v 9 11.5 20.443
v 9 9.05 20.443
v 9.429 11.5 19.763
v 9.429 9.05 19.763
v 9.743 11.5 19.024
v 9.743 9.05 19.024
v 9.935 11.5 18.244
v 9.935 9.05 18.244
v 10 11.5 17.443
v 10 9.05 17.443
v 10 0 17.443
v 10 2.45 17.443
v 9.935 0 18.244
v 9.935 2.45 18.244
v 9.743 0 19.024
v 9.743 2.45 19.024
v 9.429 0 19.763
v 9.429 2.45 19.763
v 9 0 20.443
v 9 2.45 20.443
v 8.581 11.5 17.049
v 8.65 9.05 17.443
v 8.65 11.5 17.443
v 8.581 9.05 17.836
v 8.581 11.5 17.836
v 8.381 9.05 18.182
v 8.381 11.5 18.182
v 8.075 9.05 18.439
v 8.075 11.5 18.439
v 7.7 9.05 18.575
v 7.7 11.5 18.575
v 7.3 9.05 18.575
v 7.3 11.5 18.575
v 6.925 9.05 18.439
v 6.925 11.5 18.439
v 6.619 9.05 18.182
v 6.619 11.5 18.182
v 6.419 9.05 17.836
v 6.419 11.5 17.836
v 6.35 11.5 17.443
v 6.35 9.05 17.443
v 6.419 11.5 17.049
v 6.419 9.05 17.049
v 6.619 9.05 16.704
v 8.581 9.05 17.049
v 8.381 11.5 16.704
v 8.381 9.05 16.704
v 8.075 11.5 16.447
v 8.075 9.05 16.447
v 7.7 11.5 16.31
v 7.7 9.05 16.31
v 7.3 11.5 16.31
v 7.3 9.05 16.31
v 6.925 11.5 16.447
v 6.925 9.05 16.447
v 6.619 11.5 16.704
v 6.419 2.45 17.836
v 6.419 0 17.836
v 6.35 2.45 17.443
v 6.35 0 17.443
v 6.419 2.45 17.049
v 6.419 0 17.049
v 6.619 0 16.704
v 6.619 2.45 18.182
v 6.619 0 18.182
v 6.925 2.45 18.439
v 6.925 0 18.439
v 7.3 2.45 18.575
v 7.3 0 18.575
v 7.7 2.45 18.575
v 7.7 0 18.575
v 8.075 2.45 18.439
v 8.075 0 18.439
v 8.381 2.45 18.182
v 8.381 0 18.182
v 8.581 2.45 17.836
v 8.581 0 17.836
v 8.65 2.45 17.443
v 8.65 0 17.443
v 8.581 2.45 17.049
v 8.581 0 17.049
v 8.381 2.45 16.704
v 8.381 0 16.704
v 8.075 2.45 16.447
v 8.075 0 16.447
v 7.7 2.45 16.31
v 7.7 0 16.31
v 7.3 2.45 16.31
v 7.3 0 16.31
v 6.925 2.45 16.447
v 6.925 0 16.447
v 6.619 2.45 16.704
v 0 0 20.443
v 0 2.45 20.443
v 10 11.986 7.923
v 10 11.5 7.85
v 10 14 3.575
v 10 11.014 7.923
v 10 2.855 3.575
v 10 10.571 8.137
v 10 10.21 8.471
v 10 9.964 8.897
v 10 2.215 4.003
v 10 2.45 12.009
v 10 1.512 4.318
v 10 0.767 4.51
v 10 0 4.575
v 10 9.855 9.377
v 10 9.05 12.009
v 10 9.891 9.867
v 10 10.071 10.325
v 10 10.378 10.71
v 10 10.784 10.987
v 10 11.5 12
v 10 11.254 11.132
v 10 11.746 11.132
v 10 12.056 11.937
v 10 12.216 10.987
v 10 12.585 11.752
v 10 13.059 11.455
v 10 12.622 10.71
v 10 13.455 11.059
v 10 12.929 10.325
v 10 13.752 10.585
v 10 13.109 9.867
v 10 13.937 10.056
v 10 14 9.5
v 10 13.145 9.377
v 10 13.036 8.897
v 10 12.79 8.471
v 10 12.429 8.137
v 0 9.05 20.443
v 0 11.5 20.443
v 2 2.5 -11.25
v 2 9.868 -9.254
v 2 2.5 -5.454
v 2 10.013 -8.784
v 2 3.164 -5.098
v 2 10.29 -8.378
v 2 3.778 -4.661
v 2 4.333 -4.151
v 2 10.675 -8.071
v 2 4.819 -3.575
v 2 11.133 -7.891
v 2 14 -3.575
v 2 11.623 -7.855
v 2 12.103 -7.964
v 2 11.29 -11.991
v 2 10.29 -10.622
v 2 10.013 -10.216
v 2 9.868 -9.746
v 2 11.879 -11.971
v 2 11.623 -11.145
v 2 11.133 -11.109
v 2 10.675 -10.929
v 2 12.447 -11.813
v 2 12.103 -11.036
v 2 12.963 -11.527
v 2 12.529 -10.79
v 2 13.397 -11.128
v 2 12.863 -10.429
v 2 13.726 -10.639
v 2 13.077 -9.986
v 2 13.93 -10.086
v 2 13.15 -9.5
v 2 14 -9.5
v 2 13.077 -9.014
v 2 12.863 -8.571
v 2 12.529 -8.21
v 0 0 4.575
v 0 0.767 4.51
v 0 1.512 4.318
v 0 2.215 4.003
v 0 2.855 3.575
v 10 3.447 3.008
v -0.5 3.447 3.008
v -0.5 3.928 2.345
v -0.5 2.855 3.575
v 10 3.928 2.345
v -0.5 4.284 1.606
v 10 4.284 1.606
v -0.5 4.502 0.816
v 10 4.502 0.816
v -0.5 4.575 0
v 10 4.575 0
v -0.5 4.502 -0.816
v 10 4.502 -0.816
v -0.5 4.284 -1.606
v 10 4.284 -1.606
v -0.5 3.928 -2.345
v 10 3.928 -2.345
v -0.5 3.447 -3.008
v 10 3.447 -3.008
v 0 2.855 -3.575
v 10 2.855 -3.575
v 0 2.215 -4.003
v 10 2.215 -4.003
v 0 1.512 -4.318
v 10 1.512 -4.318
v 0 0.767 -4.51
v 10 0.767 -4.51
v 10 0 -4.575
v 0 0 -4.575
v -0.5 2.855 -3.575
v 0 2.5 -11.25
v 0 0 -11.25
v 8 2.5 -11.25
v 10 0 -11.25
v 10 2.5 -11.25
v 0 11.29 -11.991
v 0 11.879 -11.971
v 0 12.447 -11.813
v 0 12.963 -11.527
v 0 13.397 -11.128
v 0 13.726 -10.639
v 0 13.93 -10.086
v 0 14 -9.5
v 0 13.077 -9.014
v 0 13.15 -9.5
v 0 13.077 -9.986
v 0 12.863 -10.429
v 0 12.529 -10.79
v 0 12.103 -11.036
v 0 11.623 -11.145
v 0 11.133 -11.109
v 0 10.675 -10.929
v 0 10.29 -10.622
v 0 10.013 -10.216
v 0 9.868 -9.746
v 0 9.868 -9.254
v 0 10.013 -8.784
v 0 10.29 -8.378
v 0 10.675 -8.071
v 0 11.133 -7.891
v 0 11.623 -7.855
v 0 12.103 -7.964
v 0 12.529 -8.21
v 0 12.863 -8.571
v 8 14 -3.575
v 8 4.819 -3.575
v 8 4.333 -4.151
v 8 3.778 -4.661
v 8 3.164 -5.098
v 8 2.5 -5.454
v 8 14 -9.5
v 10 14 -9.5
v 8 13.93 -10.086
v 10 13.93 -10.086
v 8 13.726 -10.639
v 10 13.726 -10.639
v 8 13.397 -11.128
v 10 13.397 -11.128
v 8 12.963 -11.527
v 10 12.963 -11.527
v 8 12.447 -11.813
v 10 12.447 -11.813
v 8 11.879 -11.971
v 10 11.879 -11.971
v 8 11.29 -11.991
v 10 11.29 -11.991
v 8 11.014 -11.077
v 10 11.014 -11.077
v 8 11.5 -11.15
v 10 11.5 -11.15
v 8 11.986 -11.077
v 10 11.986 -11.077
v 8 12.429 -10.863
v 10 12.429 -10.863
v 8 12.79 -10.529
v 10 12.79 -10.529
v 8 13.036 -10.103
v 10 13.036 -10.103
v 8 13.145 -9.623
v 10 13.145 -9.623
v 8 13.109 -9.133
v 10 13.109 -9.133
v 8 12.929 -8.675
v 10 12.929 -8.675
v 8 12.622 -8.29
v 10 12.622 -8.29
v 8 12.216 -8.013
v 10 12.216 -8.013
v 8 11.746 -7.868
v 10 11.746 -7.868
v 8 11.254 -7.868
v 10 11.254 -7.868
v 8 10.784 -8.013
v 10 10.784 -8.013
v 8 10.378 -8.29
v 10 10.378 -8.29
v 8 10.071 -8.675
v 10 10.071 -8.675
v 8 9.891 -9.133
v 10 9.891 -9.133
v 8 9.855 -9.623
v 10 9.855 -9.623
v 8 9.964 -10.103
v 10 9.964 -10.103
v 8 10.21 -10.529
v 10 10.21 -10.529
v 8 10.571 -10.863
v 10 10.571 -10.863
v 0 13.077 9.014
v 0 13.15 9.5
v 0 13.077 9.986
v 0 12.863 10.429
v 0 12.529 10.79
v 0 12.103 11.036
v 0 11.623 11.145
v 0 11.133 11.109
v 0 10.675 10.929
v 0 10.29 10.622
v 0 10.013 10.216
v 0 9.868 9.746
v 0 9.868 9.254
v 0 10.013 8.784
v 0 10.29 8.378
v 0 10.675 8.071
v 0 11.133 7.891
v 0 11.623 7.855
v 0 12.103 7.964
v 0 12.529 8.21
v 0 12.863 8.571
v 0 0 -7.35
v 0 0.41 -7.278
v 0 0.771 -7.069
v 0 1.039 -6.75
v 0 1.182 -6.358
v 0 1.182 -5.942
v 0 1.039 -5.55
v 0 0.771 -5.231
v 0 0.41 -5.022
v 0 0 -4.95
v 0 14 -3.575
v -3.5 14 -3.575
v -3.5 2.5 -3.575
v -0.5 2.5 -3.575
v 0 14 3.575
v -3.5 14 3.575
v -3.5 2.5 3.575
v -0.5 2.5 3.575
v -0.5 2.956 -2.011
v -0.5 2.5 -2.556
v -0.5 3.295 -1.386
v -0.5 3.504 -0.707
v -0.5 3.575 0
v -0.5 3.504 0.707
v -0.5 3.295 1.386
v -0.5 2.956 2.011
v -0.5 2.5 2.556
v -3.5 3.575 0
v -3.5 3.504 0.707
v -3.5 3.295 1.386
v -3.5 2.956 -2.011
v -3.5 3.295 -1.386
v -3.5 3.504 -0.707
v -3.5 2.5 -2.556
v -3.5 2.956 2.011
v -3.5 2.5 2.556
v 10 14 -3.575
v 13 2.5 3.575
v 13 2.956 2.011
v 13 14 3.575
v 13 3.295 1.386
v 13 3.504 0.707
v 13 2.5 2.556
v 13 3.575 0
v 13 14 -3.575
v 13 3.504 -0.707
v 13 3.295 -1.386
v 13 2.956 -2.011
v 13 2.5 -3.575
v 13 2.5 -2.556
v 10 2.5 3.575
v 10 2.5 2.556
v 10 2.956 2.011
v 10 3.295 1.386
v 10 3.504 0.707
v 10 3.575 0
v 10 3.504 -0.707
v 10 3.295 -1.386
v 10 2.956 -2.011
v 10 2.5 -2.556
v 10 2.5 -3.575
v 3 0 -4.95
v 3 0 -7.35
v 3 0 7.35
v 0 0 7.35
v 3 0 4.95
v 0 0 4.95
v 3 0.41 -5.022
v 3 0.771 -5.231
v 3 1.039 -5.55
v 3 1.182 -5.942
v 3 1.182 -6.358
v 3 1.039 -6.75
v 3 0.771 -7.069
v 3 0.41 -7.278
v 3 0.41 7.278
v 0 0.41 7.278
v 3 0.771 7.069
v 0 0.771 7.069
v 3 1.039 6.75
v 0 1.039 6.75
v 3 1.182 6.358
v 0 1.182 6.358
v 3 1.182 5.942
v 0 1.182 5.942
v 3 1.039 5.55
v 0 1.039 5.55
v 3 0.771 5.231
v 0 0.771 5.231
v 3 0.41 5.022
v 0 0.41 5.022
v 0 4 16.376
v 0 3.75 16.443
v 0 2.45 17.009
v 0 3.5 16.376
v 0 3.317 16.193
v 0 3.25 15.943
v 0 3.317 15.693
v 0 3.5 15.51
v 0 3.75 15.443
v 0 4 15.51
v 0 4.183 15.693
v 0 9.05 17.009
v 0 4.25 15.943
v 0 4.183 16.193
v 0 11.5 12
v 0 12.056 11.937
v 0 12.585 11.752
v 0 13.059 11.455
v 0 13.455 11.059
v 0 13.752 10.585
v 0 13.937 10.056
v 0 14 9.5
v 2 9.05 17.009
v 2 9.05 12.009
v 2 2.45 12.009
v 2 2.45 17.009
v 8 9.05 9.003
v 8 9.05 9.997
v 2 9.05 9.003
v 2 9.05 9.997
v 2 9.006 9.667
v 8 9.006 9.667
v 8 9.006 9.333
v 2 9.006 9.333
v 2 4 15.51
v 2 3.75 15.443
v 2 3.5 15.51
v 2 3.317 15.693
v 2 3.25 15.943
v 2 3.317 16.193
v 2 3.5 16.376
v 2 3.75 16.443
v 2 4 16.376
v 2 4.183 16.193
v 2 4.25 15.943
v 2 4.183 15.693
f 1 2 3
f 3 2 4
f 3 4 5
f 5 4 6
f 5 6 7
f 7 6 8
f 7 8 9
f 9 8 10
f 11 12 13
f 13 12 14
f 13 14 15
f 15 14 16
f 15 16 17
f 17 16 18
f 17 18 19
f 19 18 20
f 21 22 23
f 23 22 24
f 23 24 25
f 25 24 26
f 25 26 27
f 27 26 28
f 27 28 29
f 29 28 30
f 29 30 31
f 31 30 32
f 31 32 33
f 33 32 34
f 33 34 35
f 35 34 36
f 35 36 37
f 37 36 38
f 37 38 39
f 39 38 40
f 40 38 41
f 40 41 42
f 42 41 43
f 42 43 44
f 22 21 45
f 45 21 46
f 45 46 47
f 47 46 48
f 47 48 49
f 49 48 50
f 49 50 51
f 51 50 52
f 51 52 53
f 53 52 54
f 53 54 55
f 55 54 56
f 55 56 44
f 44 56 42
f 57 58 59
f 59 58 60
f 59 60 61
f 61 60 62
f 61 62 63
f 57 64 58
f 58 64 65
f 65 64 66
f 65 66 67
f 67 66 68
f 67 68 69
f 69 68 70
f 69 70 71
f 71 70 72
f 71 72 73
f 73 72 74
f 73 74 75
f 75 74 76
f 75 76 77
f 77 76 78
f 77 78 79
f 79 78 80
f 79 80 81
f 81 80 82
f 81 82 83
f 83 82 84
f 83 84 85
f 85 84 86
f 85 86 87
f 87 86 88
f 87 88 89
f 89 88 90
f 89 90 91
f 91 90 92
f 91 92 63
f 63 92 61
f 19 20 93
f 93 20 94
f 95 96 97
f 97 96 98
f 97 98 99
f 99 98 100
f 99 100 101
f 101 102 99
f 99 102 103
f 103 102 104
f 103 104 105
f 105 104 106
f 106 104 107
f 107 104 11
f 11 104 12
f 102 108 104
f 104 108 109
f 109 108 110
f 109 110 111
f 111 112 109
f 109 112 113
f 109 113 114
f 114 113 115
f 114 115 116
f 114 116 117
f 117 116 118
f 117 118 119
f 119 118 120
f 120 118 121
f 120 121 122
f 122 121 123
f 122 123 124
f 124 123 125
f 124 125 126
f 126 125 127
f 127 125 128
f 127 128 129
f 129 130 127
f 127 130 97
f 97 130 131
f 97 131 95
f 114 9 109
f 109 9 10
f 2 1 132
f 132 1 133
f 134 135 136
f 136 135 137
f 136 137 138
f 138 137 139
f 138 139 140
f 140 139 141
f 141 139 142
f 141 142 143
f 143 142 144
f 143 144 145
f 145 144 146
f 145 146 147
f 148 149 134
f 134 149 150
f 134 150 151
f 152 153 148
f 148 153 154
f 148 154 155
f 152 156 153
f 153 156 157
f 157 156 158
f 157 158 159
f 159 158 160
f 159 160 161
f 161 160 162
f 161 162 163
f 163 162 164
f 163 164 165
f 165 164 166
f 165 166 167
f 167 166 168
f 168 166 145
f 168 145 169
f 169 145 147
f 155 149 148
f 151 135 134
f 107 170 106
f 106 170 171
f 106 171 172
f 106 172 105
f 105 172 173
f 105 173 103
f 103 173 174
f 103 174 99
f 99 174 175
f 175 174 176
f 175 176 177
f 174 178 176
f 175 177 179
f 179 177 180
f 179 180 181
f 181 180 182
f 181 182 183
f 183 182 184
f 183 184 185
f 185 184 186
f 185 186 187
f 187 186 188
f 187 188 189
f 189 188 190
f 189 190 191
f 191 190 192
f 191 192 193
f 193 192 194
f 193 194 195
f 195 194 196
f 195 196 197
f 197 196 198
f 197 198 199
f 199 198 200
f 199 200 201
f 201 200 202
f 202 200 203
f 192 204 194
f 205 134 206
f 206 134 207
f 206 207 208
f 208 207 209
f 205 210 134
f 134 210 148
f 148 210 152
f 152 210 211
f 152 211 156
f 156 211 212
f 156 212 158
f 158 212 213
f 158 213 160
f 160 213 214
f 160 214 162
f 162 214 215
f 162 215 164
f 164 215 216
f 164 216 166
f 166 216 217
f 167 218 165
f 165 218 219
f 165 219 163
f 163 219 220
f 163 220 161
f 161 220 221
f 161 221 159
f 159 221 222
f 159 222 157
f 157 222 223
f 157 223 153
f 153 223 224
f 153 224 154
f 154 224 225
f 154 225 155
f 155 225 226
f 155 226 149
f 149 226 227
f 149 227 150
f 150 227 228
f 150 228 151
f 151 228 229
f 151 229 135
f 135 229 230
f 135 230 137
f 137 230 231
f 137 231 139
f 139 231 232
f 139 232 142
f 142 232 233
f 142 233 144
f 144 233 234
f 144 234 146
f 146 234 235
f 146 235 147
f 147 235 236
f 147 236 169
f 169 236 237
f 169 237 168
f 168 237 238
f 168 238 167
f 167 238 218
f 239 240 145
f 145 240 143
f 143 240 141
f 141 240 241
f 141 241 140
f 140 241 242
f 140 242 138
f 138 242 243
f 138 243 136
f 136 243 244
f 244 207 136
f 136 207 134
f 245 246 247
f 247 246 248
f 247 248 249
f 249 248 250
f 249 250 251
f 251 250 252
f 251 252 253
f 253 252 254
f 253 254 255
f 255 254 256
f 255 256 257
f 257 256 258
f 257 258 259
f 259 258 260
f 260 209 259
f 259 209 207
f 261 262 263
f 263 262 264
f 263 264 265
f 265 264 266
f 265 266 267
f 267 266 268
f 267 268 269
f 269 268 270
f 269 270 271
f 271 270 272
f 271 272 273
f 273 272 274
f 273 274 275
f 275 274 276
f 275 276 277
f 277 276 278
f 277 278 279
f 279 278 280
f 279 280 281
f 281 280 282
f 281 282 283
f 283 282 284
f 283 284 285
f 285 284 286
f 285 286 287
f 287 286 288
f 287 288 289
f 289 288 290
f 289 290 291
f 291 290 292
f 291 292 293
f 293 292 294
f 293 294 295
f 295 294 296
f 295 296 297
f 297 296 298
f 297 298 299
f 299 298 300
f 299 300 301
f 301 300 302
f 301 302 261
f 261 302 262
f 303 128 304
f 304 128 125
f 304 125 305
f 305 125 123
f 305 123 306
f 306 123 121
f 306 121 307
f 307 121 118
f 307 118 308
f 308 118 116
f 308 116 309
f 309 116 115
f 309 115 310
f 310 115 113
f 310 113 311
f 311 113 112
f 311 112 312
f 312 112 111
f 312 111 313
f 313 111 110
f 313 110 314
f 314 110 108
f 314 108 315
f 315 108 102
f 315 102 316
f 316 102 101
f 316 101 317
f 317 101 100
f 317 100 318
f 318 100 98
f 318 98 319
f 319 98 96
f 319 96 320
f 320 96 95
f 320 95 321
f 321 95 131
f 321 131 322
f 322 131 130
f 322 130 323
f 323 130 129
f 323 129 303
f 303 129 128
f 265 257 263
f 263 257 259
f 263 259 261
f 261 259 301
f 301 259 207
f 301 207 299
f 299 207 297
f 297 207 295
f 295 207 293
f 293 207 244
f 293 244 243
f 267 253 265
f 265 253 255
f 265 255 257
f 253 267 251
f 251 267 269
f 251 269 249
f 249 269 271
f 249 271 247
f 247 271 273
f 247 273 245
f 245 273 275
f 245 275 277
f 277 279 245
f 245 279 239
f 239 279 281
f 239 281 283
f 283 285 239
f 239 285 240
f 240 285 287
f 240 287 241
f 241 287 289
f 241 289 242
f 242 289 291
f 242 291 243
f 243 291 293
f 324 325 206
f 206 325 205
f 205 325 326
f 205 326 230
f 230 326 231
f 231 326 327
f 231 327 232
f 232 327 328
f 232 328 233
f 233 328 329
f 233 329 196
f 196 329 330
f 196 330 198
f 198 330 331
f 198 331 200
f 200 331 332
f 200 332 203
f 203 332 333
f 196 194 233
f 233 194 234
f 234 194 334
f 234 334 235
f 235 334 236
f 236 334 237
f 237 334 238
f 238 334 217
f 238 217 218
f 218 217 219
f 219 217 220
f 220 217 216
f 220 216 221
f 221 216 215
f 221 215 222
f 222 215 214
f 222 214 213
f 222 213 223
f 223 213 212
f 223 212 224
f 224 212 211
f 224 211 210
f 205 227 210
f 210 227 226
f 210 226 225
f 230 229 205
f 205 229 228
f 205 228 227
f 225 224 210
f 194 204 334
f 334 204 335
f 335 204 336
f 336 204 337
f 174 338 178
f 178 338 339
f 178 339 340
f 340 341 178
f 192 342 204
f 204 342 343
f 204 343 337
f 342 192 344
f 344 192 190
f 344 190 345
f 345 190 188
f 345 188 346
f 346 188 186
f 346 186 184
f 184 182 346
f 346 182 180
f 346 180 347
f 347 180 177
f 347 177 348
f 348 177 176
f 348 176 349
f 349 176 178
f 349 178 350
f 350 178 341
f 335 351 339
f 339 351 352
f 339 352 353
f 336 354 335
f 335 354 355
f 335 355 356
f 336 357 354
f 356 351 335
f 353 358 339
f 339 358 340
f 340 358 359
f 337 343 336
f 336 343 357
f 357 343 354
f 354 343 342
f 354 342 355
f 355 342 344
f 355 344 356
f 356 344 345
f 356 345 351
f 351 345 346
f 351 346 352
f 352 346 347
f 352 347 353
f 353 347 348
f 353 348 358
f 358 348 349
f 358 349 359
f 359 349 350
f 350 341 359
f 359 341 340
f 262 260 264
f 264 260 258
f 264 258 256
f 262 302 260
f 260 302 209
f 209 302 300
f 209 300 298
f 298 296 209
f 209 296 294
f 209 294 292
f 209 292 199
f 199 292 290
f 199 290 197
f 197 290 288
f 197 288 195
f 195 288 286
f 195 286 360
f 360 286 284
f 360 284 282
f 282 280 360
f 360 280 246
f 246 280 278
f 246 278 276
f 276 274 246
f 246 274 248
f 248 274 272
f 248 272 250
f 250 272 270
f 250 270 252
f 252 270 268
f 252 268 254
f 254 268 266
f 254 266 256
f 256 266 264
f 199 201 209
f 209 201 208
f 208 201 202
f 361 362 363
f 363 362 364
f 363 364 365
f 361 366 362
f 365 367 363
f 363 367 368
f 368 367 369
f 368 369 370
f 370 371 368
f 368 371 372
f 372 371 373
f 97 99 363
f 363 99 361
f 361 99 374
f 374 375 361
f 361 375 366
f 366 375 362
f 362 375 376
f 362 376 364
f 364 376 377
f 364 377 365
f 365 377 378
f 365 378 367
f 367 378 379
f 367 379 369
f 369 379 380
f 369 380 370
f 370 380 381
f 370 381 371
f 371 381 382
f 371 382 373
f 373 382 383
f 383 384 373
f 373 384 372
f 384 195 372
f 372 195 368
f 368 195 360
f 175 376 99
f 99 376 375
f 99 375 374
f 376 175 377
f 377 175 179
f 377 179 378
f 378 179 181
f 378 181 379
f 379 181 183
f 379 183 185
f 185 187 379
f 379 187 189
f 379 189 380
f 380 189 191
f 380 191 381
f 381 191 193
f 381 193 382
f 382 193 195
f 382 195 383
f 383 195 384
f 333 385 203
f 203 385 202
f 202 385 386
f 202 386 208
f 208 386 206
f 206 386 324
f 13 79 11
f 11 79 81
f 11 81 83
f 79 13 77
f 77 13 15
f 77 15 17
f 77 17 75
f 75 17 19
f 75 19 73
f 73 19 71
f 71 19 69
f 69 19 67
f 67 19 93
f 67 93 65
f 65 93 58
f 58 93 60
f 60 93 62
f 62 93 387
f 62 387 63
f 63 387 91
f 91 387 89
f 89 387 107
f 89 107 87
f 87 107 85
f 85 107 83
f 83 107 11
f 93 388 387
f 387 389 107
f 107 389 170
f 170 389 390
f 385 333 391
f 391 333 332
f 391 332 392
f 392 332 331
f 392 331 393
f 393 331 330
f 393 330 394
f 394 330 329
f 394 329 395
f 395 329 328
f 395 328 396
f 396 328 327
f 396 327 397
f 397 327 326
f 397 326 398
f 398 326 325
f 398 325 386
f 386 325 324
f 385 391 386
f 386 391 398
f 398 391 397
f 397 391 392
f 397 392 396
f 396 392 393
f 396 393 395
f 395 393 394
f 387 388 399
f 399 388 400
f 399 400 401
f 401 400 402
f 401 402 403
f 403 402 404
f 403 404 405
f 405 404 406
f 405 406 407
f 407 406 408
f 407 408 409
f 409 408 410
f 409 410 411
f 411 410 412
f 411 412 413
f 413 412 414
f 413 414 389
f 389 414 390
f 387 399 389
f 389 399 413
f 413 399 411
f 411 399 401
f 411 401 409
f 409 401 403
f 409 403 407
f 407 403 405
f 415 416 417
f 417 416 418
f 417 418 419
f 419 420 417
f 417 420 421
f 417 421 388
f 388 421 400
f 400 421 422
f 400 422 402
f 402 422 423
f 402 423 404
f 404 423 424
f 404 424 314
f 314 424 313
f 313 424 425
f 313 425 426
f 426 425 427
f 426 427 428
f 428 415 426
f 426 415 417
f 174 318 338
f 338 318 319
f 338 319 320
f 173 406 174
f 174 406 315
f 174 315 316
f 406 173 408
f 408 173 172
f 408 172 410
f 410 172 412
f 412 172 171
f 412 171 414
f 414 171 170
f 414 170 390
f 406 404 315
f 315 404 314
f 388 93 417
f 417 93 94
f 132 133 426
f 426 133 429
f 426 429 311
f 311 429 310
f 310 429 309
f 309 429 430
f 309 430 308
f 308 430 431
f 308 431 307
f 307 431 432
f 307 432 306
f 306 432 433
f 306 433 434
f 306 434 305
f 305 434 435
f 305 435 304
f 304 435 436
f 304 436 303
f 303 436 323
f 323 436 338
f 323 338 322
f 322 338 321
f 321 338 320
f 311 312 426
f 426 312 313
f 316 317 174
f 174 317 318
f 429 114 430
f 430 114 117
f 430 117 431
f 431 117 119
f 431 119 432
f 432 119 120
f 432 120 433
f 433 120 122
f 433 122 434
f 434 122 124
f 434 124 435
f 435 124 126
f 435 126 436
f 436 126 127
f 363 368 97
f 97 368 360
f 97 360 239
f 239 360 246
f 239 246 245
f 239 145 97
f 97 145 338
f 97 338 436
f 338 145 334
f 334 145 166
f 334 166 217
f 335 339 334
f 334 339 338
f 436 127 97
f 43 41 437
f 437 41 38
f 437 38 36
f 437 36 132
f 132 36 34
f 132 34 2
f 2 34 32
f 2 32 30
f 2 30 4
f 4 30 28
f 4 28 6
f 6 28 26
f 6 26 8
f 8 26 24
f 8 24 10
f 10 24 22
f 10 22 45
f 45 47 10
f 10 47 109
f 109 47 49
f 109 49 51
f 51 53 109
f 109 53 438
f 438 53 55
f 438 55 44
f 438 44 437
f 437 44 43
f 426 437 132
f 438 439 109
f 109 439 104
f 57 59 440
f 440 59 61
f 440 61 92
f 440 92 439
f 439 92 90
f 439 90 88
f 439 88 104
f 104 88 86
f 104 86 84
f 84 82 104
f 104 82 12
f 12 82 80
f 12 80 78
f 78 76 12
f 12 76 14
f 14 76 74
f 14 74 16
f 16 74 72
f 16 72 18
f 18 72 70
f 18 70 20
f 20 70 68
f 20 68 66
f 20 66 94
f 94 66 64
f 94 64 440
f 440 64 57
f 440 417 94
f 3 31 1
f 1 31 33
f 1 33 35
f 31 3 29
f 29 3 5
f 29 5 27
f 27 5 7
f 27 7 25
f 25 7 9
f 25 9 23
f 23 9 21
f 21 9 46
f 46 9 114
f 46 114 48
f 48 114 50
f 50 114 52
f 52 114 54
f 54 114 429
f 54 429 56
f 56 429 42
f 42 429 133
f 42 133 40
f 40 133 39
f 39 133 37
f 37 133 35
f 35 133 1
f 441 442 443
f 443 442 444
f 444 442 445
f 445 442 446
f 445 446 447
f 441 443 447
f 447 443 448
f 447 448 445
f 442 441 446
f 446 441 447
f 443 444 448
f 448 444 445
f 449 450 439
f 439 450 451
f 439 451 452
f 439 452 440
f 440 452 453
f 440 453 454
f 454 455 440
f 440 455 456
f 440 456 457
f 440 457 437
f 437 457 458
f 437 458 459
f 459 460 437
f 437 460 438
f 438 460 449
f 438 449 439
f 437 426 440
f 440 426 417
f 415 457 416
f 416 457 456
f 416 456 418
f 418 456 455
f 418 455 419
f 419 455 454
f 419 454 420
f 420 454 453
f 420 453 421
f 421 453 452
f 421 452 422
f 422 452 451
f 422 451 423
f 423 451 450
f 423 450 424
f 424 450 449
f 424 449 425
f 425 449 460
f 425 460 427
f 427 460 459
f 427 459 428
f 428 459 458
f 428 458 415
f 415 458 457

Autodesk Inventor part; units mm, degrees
ref_plane "YZ Plane" through (0, 0, 0) normal (1, 0, 0) x (0, 1, 0)
ref_plane "XZ Plane" through (0, 0, 0) normal (0, 1, 0) x (-1, 0, 0)
ref_plane "XY Plane" through (0, 0, 0) normal (0, 0, 1) x (1, 0, 0)
sketch "スケッチ1" plane through (0, 0, 0) normal (1, 0, 0) x (0, 1, 0)
  circle A0 centre (0, 0) radius 4.575
  circle A1 centre (0, 0) radius 3.575
  line L0 (0, 0) -> (0, 6)
  line L1 (0, 6) -> (0, -6)
  line L2 (0, 0) -> (11.5, 0)
  line L3 (11.5, 0) -> (11.5, 9.5)
  line L4 (11.5, 9.5) -> (11.5, -9.5)
  circle A2 centre (11.5, 9.5) radius 1.65
  circle A3 centre (11.5, -9.5) radius 1.65
  line L5 (0, 0) -> (0, 11.25)
  line L6 (0, 11.25) -> (0, -11.25)
  line L7 (-2.5, -11.25) -> (2.5, -11.25)
  line L8 (2.5, -11.25) -> (2.5, 11.25)
  line L9 (2.5, 11.25) -> (-2.5, 11.25)
  line L10 (-2.5, 11.25) -> (-2.5, -11.25)
  line L11 (-2.5, -11.25) -> (2.5, 11.25) construction
  line L12 (2.5, -11.25) -> (-2.5, 11.25) construction
  circle A4 centre (11.5, 9.5) radius 2.5
  circle A5 centre (11.5, -9.5) radius 2.5
  line L13 (2.5, 11.25) -> (11.2899, 11.9912)
  line L14 (2.5, -11.25) -> (11.2899, -11.9912)
  line L15 (14, 9.5) -> (14, -9.5)
  line L16 (0, -3.575) -> (14, -3.575)
  line L17 (0, 3.575) -> (14, 3.575)
  circle A6 centre (0, 0) radius 6
  line L18 (0, 0) -> (0, 6.15)
  line L19 (0, 6.15) -> (0, -6.15)
  circle A7 centre (0, 6.15) radius 1.25
  circle A8 centre (0, -6.15) radius 1.25
  line L20 (0, 11.25) -> (11.5, 11.25)
  line L21 (11.5, 11.25) -> (11.5, 12)
  line L22 (11.5, 12) -> (0, 12)
  line L23 (0, 12) -> (0, 11.25)
  point P0 (0, 4.575)
  point P1 (0, -4.575)
  point P2 (2.5, 3.575)
  point P3 (2.5, 2.5555)
  point P4 (2.5, -2.5555)
  point P5 (2.5, -3.575)
  point P6 (0, 7.4)
  point P7 (0, 4.9)
  point P8 (0, -4.9)
  point P9 (0, -7.4)
  point P10 (2.5, 5.4544)
  point P11 (2.5, -5.4544)
  point P12 (4.8186, 3.575)
  point P13 (4.8186, -3.575)
  point P14 (2.8548, 3.575)
  point P15 (2.8548, -3.575)
  dimension "d0" = 9.15
  dimension "d1" = 7.15
  dimension "d2" = 6
  dimension "d3" = 12
  dimension "d6" = 11.5
  dimension "d7" = 9.5
  dimension "d8" = 19
  dimension "d9" = 3.3
  dimension "d10" = 3.3
  dimension "d11" = 11.25
  dimension "d12" = 22.5
  dimension "d13" = 5
  dimension "d14" = 5
  dimension "d15" = 5
  dimension "d28" = 12
  dimension "d29" = 6.15
  dimension "d30" = 12.3
  dimension "d31" = 2.5
  dimension "d32" = 2.5
  dimension "d89" = 11.5
extrude "押し出し7" add sketch "スケッチ1" along normal blind 2 contours L2 A6 L16 A0 | A0 L17 A6 L2 | A0 L8 A6 L17 | L16 A6 L8 A0 | A6 L17 L3 L2 | L2 L4 L16 A6 | A0 L0 A7 A6 L8 | A6 L8 L20 A4 L3 L17 | L8 A6 A8 L1 A0 | L16 L4 A5 L14 L8 A6 | L3 L17 L15 L16 L4 | A6 A7 L5 L9 L8 | L3 A4 L15 L17 | L8 L7 L6 A8 A6 | L16 L15 A5 L4 | L13 A4 L20 | A4 L20 L21 | A5 | A4 L21 L20
extrude "押し出し8" add sketch "スケッチ1" along normal blind 10 contours L2 A6 L16 A0 | A0 L17 A6 L2 | A0 L8 A6 L17 | L16 A6 L8 A0 | A6 L17 L3 L2 | L2 L4 L16 A6 | A0 L0 A7 A6 L8 | L8 A6 A8 L1 A0 | L3 L17 L15 L16 L4 | A6 A7 L5 L9 L8 | L8 L7 L6 A8 A6 | L0 A6 A7 | A6 L5 A7 | A8 A6 L1 | A8 L6 A6 picked at (0.2292, 5.6392) picked at (0.3961, 6.4211) picked at (0.2292, -5.6392) picked at (0.3961, -6.4211)
sketch "スケッチ6" plane through (10, 0, 0) normal (1, 0, 0) x (0, 0, -1)
  line L0 (0, 0) -> (-6.15, 0)
  line L1 (-6.15, 0) -> (6.15, 0)
  circle A0 centre (-6.15, 0) radius 1.25
  circle A1 centre (6.15, 0) radius 1.25
  line L2 (-11.25, 2.5) -> (11.25, 2.5)
  line L3 (11.25, 2.5) -> (11.25, -2.5)
  line L4 (11.25, -2.5) -> (-11.25, -2.5)
  line L5 (-11.25, -2.5) -> (-11.25, 2.5)
  line L6 (-11.25, 2.5) -> (11.25, -2.5) construction
  line L7 (11.25, 2.5) -> (-11.25, -2.5) construction
  line L8 (0, 0) -> (0, 11.5)
  line L9 (0, 11.5) -> (-9.5, 11.5)
  line L10 (-9.5, 11.5) -> (9.5, 11.5)
  circle A2 centre (-9.5, 11.5) radius 1.65
  circle A3 centre (-9.5, 11.5) radius 2.5
  circle A4 centre (9.5, 11.5) radius 1.65
  circle A5 centre (9.5, 11.5) radius 2.5
  circle A6 centre (0, 0) radius 6
  circle A7 centre (0, 0) radius 4.575
  arc A8 (11.9912, 11.2899) -> (9.5, 14) centre (9.5, 11.5) ccw projected
  line L11 (11.25, 2.5) -> (11.9912, 11.2899)
  line L12 (-11.9912, 11.2899) -> (-11.25, 2.5) projected
  line L13 (-11.25, 2.5) -> (-11.9912, 11.2899)
  line L14 (9.5, 14) -> (-9.5, 14) projected
  arc A9 (-9.5, 14) -> (-11.9912, 11.2899) centre (-9.5, 11.5) ccw projected
  line L15 (-9.5, 14) -> (9.5, 14)
  circle A10 centre (0, 0) radius 3.575
  line L16 (-3.575, 14) -> (-3.575, 4.8186) projected
  line L17 (3.575, -14) -> (-3.575, -14)
  line L18 (-3.575, -14) -> (-3.575, 14)
  line L19 (-3.575, 14) -> (3.575, 14)
  line L20 (3.575, 14) -> (3.575, -14)
  line L21 (3.575, -14) -> (-3.575, 14) construction
  line L22 (-3.575, -14) -> (3.575, 14) construction
  line L23 (-11.25, 0) -> (-12.0089, 0)
  line L24 (-12.0089, 0) -> (-12.0089, 11.5)
  line L25 (-12.0089, 11.5) -> (-11.25, 11.5)
  line L26 (-11.25, 11.5) -> (-11.25, 0)
  line L27 (-12.0089, 0) -> (-12.0089, 5.75)
  line L28 (-20.4427, 2.45) -> (-3.575, 2.45)
  line L29 (-3.575, 2.45) -> (-3.575, 9.05)
  line L30 (-3.575, 9.05) -> (-20.4427, 9.05)
  line L31 (-20.4427, 9.05) -> (-20.4427, 2.45)
  line L32 (-20.4427, 2.45) -> (-3.575, 9.05) construction
  line L33 (-3.575, 2.45) -> (-20.4427, 9.05) construction
  line L34 (-3.575, 0) -> (-20.4427, 0)
  line L35 (-20.4427, 0) -> (-20.4427, 11.5)
  line L36 (-20.4427, 11.5) -> (-3.575, 11.5)
  line L37 (-3.575, 11.5) -> (-3.575, 0)
  line L38 (-3.575, 0) -> (-20.4427, 11.5) construction
  line L39 (-20.4427, 0) -> (-3.575, 11.5) construction
  point P0 (-5.4544, 2.5)
  point P1 (5.4544, 2.5)
  point P2 (7, 11.5)
  point P3 (-7, 11.5)
  point P4 (-3.575, 11.5)
  point P5 (-3.575, 4.8186)
  point P6 (-3.575, 2.5)
  point P7 (-2.5555, 2.5)
  point P8 (2.5555, 2.5)
  point P9 (3.575, 2.5)
  point P10 (3.575, 11.5)
  point P11 (-9.9975, 9.05)
  point P12 (-9.0025, 9.05)
  point P13 (-12, 11.5)
  point P14 (-12.0089, 9.05)
  point P15 (-12.0089, 2.45)
  dimension "d69" = 12
  dimension "d56" = 6.15
  dimension "d57" = 12.3
  dimension "d58" = 2.5
  dimension "d59" = 2.5
  dimension "d62" = 11.5
  dimension "d63" = 9.5
  dimension "d64" = 19
  dimension "d65" = 3.3
  dimension "d66" = 5
  dimension "d67" = 3.3
  dimension "d68" = 5
  dimension "d70" = 9.15
  dimension "d79" = 7.15
  dimension "d90" = 5.75
  dimension "d91" = 6.6
extrude "押し出し9" add sketch "スケッチ6" against normal blind 2 contours A6 L20 L10 A5 L11 L2 | A6 L8 L10 L20 | A6 L16 L9 L8 | L2 L26 L30 A3 L16 A6 | L20 L14 A5 L10 | L10 L9 L16 L14 L20 | L12 L30 L26 | L30 A3 L9 L16 | A5 | L9 A3 L14 L16 | L12 A3 L26 L30 | L26 A3 L30 | L30 A3 L26 L36 A2 L9 | A3 L30 | L9 A2 L36 L25 A3 | A3 L25 L26
extrude "押し出し10" add sketch "スケッチ1" against normal blind 0.5 contours L2 A6 L16 A0 | A0 L17 A6 L2 | A6 L17 L3 L2 | L2 L4 L16 A6 | L3 L17 L15 L16 L4
sketch "スケッチ7" plane through (-0.5, 0, 0) normal (-1, 0, 0) x (0, 0, 1)
  circle A0 centre (0, 0) radius 3.575
  line L0 (-9.5, 14) -> (9.5, 14) projected
  line L1 (-3.575, 14) -> (3.575, 14)
  circle A1 centre (0, 0) radius 4.575
  line L2 (-11.25, 0) -> (-11.25, 2.5) projected
  line L3 (11.25, -2.5) -> (-11.25, -2.5)
  line L4 (-11.25, -2.5) -> (-11.25, 2.5)
  line L5 (-11.25, 2.5) -> (11.25, 2.5)
  line L6 (11.25, 2.5) -> (11.25, -2.5)
  line L7 (11.25, -2.5) -> (-11.25, 2.5) construction
  line L8 (-11.25, -2.5) -> (11.25, 2.5) construction
  line L9 (-3.575, 14) -> (-3.575, 0)
  line L10 (3.575, 14) -> (3.575, 0)
  point P0 (-3.575, 2.5)
  point P1 (-2.5555, 2.5)
  point P2 (2.5555, 2.5)
  point P3 (3.575, 2.5)
  dimension "d75" = 7.15
  dimension "d76" = 5
extrude "押し出し11" add sketch "スケッチ7" along normal blind 3 contours A0 L5 L9 A1 L10 | A1 L9 L0 L10
extrude "押し出し12" add sketch "スケッチ6" along normal blind 3 contours L2 L18 A7 L8 A10 | A10 L8 A7 L20 L2 | A7 L8 A6 L20 | A7 L18 A6 L8 | A6 L8 L10 L20 | A6 L16 L9 L8 | L10 L9 L16 L14 L20
hole "穴1" at (0, 0, -6.15) at (0, 0, 6.15) direction (1, 0, 0) diameter 2.4 depth 3
sketch "スケッチ8" plane through (0, 11.2899, 11.9912) normal (0, -0.084, 0.9965) x (1, 0, 0)
  point P0 (0, -12.2575)
extrude "押し出し13" add sketch "スケッチ6" against normal blind 10 contours L2 L26 L30 A3 L16 A6 | L28 L24 L30 L12 L5 | L5 L23 L24 L28 | L12 L30 L26 | L24 L34 L35 L28 | L30 A3 L9 L16 | L9 A3 L14 L16 | L30 L24 L25 A3 L12 | L12 A3 L26 L30 | L26 A3 L30 | L30 A3 L26 L36 A2 L9 | L9 A2 L36 L25 A3 | A3 L25 L26 | L30 L35 L36 L24
sketch "スケッチ9" plane through (10, 11.5, 20.4427) normal (0, 1, 0) x (1, 0, 0)
  line L0 (-10, 8.4427) -> (0, 8.4427) projected
  line L1 (0, 8.4427) -> (-5, 8.4427)
  line L2 (0, 0) -> (-10, 0) projected
  line L3 (-5, 0) -> (-5, 3)
  circle A0 centre (-5, 3) radius 1.15
  circle A1 centre (-5, 3) radius 5
  line L4 (0, 8.4427) -> (0, 0) projected
  line L5 (0, -2.4427) -> (-10, -2.4427)
  line L6 (-10, -2.4427) -> (-10, 8.4427)
  line L7 (-10, 8.4427) -> (0, 8.4427)
  line L8 (0, 8.4427) -> (0, -2.4427)
  line L9 (0, -2.4427) -> (-10, 8.4427) construction
  line L10 (-10, -2.4427) -> (0, 8.4427) construction
  line L11 (0, 0) -> (-10, 0) projected
  line L12 (-10, 0) -> (0, 0)
  line L13 (-10, 0) -> (-10, 8.4427) projected
  line L14 (-10, 3) -> (-7, 3)
  circle A2 centre (-7, 3) radius 1.15
  line L15 (-5, 3) -> (-2.5, 3)
  circle A3 centre (-2.5, 3) radius 1.15
  point P0 (-10, 20.4427)
  point P1 (0, 3)
  point P2 (-1, 0)
  point P3 (-9, 0)
  dimension "d94" = 3
  dimension "d95" = 2.3
  dimension "d98" = 3
  dimension "d99" = 2.3
  dimension "d100" = 2.3
extrude "押し出し14" cut sketch "スケッチ9" against normal blind 11.5 contours A3 | L4 L2 A1
sketch "スケッチ10" plane through (10, 2.45, 12.0089) normal (0, 0, 1) x (1, 0, 0)
  point P0 (-10, -2.45)
sketch "スケッチ11" plane through (10, 2.45, 12.0089) normal (0, 0, 1) x (1, 0, 0)
  line L0 (-10, 0) -> (-10, 6.6) projected
  line L1 (0, 0) -> (-10, 0) projected
  line L2 (-10, 6.6) -> (-7.6825, 6.6)
  line L3 (-7.6825, 6.6) -> (-7.6825, 0)
  line L4 (-7.6825, 0) -> (-10, 0)
  line L5 (-10, 0) -> (-10, 6.6)
  line L6 (-8, 0.05) -> (-8, 8.8399) projected
  line L7 (-10, 6.6) -> (-8, 6.6)
  line L8 (-8, 6.6) -> (-8, 0.05)
  line L9 (-8, 0.05) -> (-10, 0.05)
  line L10 (-10, 0.05) -> (-10, 6.6)
  line L11 (-10, 0.05) -> (-8, 0.05)
  line L12 (-8, 0.05) -> (-8, 0)
  line L13 (-8, 0) -> (-10, 0)
  line L14 (-10, 0) -> (-10, 0.05)
  point P0 (-10, -2.45)
extrude "押し出し15" add sketch "スケッチ11" along normal blind 5 contours L0 L9 L12 L1 | L0 L2 L6 L9
sketch "スケッチ12" plane through (2, 2.45, 12.0089) normal (1, 0, 0) x (0, 0, -1)
  line L0 (0, 0) -> (-5, 0) projected
  line L1 (-8.4339, 6.6) -> (-8.4339, 9.05) projected
  line L2 (0, 0) -> (-8.4339, 0)
  line L3 (-8.4339, 0) -> (-8.4339, 9.05)
  line L4 (-8.4339, 9.05) -> (0, 9.05)
  line L5 (0, 9.05) -> (0, 0)
  line L6 (-8.4339, 0) -> (-5, 0) projected
  line L7 (-8.4339, 0) -> (-3.9339, 0)
  line L8 (-3.9339, 0) -> (-3.9339, 2.6858)
  line L9 (-3.9339, 2.6858) -> (-8.4339, 2.6858)
  line L10 (-8.4339, 2.6858) -> (-8.4339, 0)
  line L11 (-3.9339, 0) -> (-3.9339, 3.3)
  line L12 (-3.9339, 3.3) -> (-3.9339, 1.3)
  point P0 (12.0089, -2.45)
  dimension "d103" = 4.5
  dimension "d104" = 3.3
  dimension "d105" = 2
hole "穴2" at (2, 3.75, 15.9427) direction (-1, 0, 0) diameter 1 depth 8
properties part number "ikafly5.0d"
